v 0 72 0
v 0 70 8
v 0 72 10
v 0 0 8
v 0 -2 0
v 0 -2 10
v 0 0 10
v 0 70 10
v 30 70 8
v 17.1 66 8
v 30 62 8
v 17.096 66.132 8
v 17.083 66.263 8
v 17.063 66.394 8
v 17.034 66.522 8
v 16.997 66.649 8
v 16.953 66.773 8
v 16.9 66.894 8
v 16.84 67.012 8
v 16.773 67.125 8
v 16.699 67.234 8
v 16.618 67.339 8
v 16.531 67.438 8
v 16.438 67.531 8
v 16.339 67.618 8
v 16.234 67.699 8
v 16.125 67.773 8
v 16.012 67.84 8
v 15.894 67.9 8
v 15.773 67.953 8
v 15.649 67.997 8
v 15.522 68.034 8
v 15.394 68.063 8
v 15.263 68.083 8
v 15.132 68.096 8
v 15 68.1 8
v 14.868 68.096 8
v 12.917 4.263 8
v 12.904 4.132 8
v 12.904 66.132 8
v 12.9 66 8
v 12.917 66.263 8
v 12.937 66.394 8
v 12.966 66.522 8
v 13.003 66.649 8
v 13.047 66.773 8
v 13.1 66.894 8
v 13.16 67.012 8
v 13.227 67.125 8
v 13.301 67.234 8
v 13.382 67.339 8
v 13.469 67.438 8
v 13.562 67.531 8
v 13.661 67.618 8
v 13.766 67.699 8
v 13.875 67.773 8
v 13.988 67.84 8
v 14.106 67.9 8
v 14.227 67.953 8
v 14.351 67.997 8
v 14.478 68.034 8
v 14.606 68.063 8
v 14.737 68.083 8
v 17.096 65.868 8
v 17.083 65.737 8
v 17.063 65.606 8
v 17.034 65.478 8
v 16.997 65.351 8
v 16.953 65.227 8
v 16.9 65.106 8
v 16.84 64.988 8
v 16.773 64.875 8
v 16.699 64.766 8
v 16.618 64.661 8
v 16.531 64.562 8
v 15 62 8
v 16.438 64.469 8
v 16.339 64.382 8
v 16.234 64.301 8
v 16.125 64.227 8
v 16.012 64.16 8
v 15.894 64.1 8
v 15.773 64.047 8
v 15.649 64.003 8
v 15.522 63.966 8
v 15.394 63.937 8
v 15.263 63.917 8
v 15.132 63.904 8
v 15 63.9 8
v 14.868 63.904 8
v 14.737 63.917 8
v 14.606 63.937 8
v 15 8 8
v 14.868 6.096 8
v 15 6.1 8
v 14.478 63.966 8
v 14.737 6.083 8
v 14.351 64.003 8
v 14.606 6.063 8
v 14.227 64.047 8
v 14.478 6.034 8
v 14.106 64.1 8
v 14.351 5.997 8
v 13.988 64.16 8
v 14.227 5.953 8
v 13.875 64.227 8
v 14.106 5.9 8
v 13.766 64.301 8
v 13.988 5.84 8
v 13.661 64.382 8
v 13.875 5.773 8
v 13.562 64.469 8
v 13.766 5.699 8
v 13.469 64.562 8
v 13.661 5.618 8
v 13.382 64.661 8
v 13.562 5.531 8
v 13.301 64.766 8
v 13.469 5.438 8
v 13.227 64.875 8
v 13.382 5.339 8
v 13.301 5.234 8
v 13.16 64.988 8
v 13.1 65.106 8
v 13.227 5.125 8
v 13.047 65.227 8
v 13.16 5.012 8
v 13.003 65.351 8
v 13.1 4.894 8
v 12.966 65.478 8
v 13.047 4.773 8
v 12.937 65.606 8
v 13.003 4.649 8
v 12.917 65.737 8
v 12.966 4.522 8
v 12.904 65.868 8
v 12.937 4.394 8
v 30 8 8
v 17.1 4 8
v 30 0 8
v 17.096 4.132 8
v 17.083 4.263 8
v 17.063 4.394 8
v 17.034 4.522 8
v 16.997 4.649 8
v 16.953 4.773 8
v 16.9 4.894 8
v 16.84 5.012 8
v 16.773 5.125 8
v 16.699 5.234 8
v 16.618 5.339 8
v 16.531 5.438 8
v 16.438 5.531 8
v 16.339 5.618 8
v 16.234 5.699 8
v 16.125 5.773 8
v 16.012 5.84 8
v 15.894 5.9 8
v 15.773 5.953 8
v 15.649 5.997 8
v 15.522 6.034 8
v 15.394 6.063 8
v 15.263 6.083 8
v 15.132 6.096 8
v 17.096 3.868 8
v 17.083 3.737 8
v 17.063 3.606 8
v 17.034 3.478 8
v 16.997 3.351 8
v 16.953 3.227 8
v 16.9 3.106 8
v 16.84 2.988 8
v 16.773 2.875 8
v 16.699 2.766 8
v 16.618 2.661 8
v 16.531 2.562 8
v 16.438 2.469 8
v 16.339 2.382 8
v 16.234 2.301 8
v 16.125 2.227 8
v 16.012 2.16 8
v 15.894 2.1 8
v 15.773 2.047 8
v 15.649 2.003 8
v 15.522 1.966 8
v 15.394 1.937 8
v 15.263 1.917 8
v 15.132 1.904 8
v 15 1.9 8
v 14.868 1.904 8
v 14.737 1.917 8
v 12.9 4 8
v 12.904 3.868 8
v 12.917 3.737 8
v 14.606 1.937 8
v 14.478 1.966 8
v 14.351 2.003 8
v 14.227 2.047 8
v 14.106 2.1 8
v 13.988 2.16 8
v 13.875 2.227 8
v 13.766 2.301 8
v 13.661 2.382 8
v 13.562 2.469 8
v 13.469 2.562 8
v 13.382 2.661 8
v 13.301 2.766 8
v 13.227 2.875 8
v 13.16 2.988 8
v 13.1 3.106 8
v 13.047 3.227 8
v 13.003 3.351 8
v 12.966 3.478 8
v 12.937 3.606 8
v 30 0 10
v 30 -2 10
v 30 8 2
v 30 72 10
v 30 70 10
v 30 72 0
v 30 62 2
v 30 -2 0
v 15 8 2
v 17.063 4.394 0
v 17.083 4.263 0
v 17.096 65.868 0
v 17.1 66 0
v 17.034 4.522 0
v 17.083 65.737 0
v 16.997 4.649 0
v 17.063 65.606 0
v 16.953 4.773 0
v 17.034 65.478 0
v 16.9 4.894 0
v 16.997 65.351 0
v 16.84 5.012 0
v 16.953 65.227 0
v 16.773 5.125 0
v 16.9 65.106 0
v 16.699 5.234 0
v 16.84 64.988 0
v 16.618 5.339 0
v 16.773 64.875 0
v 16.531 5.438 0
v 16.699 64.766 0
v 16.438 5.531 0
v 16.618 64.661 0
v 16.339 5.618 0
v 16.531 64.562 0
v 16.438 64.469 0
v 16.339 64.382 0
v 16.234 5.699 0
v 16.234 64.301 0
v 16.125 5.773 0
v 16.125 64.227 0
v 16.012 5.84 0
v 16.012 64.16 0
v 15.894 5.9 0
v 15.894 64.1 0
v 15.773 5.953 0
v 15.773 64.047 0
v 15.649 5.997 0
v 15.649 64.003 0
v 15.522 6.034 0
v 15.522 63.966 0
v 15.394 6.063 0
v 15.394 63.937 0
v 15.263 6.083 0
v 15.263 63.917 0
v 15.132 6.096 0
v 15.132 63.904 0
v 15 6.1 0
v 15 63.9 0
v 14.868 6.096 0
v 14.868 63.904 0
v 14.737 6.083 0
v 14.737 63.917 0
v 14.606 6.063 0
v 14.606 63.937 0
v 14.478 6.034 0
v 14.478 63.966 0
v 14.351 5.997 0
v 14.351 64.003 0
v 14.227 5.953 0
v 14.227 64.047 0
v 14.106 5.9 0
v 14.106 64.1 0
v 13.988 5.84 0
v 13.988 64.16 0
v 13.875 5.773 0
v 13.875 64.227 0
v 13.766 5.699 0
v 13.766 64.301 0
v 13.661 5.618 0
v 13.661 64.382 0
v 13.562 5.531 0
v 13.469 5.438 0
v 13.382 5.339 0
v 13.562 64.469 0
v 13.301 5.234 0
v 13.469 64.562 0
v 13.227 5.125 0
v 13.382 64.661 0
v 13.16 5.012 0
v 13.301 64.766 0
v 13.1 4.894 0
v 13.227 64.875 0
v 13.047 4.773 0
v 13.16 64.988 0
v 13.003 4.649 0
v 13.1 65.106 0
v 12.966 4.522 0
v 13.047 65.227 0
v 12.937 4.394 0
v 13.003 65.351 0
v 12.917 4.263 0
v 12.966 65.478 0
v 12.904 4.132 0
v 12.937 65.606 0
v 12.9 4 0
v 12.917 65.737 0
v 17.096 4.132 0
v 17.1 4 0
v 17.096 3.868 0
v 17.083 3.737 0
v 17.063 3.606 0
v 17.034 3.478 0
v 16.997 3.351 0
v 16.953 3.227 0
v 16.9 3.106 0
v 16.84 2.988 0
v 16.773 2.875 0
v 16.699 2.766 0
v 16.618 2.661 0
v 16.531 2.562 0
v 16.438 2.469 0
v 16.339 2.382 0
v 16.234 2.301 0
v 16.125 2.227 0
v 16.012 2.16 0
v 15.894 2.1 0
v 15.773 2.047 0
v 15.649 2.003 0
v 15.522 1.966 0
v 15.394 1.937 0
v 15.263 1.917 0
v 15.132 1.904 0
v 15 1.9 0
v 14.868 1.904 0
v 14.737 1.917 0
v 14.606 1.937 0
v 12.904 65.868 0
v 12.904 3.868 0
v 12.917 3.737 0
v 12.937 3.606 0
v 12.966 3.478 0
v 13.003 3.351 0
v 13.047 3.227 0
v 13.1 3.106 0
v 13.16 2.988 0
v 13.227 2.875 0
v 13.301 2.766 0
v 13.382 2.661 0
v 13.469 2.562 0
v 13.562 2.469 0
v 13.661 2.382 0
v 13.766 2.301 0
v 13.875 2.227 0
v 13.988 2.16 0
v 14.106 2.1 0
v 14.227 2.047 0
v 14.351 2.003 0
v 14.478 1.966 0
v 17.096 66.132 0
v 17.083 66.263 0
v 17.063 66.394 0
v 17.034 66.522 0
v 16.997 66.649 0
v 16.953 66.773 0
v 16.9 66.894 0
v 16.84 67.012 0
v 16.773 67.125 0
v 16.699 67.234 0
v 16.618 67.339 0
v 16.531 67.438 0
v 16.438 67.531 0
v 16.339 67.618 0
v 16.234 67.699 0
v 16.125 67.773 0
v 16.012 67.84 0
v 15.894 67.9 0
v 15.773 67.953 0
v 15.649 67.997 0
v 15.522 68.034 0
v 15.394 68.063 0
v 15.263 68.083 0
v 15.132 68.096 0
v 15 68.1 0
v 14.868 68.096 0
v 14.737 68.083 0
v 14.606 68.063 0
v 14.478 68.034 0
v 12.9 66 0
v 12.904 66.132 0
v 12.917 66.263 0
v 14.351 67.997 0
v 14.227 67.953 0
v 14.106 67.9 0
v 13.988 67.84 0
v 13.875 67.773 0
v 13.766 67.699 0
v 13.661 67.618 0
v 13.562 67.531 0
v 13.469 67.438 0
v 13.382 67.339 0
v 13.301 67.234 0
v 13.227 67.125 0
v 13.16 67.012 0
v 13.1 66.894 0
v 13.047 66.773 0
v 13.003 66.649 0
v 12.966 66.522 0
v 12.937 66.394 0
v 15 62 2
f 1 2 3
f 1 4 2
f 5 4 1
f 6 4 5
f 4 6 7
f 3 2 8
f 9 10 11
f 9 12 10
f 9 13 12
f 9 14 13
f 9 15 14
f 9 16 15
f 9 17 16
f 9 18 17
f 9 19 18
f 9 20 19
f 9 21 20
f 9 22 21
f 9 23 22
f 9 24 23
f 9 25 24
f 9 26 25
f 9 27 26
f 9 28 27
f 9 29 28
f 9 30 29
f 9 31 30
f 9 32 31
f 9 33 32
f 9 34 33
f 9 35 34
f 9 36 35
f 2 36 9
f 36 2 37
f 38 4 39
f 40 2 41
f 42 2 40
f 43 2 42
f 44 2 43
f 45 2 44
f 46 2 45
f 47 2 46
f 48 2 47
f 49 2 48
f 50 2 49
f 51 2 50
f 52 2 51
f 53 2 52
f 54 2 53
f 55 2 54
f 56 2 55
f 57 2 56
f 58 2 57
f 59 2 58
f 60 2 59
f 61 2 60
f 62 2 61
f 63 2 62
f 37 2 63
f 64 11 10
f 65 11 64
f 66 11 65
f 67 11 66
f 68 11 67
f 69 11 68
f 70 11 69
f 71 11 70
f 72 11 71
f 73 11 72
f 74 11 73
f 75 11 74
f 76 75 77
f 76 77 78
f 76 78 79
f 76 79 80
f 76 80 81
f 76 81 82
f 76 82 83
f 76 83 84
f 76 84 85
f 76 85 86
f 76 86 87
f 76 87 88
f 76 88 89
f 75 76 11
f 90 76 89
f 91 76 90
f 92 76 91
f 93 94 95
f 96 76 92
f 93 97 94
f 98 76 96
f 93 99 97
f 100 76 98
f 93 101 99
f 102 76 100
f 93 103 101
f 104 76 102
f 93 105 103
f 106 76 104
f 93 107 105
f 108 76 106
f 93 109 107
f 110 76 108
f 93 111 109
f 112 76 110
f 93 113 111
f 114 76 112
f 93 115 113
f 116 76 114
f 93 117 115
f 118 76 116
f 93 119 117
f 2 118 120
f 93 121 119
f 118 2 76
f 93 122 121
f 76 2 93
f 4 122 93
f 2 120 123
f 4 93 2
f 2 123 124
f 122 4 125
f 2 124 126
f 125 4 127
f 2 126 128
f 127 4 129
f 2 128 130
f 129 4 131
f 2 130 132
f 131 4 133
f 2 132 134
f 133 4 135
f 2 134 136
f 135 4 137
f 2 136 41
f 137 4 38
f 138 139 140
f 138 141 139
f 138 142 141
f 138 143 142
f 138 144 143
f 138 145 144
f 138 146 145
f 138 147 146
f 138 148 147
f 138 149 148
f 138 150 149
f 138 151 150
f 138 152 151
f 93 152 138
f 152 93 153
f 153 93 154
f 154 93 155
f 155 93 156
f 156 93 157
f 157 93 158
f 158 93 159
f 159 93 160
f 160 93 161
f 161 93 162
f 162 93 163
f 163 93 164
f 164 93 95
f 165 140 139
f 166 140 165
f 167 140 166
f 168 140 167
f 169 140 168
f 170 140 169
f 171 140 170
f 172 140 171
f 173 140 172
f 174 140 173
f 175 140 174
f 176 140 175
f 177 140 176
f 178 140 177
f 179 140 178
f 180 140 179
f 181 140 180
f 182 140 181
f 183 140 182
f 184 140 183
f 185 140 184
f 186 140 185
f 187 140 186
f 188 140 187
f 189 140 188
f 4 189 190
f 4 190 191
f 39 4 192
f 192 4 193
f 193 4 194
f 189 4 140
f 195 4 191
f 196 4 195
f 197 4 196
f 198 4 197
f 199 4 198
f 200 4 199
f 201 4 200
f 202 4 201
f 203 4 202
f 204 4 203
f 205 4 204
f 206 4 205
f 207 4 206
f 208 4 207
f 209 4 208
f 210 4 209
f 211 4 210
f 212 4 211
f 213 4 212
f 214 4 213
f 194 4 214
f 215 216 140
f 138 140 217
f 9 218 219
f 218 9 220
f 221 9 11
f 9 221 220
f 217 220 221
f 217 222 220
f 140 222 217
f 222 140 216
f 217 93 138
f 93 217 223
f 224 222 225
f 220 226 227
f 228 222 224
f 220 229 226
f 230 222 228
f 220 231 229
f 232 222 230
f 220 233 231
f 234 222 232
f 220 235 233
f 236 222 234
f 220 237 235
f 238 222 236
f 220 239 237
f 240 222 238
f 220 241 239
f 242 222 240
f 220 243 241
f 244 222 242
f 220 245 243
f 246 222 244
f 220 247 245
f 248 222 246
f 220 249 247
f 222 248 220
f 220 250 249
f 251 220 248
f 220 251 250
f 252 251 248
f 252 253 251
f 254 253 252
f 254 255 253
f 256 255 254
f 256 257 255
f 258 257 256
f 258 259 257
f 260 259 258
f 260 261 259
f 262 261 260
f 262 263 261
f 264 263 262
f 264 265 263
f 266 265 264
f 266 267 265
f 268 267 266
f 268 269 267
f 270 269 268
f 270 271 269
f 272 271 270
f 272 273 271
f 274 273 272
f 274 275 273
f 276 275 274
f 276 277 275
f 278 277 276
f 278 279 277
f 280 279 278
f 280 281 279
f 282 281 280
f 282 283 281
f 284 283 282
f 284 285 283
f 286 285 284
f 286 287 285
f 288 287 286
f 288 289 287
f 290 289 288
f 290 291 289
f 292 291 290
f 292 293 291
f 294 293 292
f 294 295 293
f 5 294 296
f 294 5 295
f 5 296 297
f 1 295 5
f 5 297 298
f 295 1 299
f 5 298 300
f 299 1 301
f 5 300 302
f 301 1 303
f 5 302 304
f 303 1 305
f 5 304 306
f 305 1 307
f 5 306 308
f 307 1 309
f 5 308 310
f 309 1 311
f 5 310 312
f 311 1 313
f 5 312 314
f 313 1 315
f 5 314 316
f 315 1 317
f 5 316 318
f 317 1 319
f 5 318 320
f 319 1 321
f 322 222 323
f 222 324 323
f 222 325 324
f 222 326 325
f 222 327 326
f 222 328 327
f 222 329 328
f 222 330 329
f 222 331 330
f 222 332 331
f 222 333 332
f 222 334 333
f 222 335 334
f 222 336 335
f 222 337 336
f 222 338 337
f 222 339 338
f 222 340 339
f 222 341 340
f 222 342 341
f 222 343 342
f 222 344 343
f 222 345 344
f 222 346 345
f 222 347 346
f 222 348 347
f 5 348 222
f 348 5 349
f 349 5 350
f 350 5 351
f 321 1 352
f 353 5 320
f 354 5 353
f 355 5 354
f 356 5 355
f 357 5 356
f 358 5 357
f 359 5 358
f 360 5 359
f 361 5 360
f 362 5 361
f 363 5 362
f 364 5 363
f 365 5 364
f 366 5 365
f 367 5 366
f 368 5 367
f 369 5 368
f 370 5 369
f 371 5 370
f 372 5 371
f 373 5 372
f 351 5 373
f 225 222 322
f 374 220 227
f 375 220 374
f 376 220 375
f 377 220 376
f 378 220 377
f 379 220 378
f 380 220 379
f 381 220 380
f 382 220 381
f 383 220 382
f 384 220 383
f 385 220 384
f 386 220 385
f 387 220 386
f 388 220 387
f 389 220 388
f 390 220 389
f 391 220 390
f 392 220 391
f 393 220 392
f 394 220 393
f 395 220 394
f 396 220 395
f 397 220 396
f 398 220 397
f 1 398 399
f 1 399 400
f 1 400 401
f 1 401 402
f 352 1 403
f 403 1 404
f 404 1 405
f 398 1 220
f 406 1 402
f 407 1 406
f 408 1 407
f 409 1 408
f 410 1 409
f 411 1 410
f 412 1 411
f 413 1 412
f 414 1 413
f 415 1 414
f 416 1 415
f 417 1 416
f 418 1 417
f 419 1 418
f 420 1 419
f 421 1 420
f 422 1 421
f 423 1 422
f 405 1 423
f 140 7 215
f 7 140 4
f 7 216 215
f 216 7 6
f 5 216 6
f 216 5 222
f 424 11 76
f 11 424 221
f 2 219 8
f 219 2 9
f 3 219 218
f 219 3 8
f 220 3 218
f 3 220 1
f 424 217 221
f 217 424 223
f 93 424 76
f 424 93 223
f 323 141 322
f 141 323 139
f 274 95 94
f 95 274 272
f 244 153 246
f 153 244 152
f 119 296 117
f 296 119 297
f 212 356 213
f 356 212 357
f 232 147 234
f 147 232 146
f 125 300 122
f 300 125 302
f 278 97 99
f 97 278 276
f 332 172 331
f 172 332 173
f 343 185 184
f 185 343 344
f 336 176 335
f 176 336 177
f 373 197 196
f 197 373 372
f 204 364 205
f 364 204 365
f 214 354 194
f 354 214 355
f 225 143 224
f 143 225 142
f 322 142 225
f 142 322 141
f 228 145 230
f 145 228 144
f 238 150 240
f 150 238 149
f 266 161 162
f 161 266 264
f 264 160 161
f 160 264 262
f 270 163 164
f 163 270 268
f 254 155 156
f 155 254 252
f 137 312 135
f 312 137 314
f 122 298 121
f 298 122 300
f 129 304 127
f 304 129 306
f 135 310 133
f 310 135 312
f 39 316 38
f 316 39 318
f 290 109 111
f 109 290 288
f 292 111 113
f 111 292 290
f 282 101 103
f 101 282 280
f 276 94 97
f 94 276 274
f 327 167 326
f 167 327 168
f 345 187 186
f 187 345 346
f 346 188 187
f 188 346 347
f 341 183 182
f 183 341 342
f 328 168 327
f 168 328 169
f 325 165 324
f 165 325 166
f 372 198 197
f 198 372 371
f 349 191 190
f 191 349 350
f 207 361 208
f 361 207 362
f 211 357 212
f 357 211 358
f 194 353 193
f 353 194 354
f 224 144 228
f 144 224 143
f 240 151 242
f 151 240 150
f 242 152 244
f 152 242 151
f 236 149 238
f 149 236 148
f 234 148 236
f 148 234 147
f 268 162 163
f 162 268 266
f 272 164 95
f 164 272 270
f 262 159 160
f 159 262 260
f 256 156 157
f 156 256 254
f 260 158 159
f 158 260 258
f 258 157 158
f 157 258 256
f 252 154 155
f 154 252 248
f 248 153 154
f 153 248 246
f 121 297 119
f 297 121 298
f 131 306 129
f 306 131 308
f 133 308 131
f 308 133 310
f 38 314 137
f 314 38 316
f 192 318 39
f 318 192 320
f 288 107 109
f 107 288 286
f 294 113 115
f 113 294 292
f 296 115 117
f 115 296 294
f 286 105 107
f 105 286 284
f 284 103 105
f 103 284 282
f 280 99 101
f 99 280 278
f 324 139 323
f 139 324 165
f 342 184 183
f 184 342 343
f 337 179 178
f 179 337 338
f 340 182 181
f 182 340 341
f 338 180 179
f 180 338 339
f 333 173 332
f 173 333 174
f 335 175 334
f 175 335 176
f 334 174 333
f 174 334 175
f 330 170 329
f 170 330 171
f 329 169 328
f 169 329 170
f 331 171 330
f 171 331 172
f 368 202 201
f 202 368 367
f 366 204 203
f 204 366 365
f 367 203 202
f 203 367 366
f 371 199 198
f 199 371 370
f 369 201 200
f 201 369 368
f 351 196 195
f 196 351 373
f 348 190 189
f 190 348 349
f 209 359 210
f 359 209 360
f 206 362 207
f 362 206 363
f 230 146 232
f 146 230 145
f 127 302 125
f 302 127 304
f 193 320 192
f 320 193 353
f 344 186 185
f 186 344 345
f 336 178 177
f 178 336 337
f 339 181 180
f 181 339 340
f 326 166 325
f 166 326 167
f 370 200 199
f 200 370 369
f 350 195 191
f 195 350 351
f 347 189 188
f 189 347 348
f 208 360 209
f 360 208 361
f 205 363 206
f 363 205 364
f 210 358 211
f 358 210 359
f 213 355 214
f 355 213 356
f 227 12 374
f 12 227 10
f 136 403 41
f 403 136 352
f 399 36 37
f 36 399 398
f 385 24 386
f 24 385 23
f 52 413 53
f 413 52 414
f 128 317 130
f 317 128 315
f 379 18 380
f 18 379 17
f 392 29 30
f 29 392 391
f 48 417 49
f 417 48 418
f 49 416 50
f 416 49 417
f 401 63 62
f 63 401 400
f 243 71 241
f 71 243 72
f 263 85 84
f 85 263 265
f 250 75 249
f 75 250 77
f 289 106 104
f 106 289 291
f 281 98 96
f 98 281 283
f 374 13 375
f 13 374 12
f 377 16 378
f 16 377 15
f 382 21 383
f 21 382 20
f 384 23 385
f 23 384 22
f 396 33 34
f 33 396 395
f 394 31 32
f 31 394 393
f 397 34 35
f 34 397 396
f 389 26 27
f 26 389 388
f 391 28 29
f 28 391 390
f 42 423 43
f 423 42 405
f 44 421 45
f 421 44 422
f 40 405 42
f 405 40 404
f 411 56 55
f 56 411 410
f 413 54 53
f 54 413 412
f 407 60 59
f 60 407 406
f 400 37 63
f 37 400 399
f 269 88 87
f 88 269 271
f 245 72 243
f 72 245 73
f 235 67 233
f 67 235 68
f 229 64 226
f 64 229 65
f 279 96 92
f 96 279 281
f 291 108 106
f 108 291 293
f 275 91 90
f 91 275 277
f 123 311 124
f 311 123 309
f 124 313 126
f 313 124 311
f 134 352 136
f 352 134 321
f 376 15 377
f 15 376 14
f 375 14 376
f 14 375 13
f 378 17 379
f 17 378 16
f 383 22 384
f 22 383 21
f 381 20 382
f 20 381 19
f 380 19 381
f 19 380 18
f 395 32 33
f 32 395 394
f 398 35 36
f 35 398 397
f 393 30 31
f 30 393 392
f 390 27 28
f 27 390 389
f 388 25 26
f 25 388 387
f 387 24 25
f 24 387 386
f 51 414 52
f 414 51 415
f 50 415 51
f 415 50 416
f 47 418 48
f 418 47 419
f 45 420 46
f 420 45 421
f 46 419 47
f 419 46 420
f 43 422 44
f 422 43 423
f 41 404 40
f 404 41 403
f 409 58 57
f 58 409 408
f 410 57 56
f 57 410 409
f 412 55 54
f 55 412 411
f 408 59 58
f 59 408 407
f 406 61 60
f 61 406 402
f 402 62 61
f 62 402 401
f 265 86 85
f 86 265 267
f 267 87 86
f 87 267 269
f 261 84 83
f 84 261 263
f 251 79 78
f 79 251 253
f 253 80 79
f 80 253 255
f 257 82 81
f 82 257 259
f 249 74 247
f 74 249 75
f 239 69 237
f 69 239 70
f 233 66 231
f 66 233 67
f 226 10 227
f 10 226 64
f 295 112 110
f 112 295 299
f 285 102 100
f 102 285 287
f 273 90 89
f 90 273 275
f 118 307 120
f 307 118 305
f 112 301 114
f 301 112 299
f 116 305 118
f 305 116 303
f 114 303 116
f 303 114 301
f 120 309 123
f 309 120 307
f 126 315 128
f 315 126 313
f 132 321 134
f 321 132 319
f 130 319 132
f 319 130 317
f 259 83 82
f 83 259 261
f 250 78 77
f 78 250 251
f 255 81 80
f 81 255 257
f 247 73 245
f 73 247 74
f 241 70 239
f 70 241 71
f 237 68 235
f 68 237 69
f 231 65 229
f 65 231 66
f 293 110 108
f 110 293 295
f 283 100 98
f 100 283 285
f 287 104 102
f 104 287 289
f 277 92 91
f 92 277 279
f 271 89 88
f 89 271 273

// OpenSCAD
terminal_grp_cnt = 3; //x2
terminal_grp_len = 2 * 8.5; //mm

terminal_grp_pos_x = 15; //mm
terminal_grp_pos_y = 18; //mm

terminal_bed_hight = 2; //mm

body_hight = 8; //mm
body_len = 30; //mm
body_width = 8; //mm
body_grp_width = 36 - terminal_grp_len; //mm
body_full_width = body_grp_width + terminal_grp_cnt * terminal_grp_len;

hole_dia = 4.2; //mm
hole_pos_x = 15; //mm
hole_pos_y = 4; //mm

border_hight = 2; //mm
border_width = 2; //mm

$fn = 100;

echo("full width = ", body_full_width);

module foot() {
    translate([0, 0, 0])
        cube([body_len, body_width, body_hight]);
    translate([0, -border_width, 0])
        cube([body_len, border_width, border_hight + body_hight]);
}

difference() {
    union() {
        translate([0, 0, 0])
            rotate(0)
                foot();
        translate([0, body_full_width, 0])
            mirror([0, 1, 0])
                foot();
        cube([body_len, body_full_width, terminal_bed_hight]);
        cube([hole_pos_x, body_full_width, body_hight]);
    }
    union() {
        translate([hole_pos_x, hole_pos_y, 0])
            cylinder(body_hight, r = hole_dia / 2);
        translate([hole_pos_x, body_full_width - hole_pos_y, 0])
            cylinder(body_hight, r = hole_dia / 2);
    }
}
